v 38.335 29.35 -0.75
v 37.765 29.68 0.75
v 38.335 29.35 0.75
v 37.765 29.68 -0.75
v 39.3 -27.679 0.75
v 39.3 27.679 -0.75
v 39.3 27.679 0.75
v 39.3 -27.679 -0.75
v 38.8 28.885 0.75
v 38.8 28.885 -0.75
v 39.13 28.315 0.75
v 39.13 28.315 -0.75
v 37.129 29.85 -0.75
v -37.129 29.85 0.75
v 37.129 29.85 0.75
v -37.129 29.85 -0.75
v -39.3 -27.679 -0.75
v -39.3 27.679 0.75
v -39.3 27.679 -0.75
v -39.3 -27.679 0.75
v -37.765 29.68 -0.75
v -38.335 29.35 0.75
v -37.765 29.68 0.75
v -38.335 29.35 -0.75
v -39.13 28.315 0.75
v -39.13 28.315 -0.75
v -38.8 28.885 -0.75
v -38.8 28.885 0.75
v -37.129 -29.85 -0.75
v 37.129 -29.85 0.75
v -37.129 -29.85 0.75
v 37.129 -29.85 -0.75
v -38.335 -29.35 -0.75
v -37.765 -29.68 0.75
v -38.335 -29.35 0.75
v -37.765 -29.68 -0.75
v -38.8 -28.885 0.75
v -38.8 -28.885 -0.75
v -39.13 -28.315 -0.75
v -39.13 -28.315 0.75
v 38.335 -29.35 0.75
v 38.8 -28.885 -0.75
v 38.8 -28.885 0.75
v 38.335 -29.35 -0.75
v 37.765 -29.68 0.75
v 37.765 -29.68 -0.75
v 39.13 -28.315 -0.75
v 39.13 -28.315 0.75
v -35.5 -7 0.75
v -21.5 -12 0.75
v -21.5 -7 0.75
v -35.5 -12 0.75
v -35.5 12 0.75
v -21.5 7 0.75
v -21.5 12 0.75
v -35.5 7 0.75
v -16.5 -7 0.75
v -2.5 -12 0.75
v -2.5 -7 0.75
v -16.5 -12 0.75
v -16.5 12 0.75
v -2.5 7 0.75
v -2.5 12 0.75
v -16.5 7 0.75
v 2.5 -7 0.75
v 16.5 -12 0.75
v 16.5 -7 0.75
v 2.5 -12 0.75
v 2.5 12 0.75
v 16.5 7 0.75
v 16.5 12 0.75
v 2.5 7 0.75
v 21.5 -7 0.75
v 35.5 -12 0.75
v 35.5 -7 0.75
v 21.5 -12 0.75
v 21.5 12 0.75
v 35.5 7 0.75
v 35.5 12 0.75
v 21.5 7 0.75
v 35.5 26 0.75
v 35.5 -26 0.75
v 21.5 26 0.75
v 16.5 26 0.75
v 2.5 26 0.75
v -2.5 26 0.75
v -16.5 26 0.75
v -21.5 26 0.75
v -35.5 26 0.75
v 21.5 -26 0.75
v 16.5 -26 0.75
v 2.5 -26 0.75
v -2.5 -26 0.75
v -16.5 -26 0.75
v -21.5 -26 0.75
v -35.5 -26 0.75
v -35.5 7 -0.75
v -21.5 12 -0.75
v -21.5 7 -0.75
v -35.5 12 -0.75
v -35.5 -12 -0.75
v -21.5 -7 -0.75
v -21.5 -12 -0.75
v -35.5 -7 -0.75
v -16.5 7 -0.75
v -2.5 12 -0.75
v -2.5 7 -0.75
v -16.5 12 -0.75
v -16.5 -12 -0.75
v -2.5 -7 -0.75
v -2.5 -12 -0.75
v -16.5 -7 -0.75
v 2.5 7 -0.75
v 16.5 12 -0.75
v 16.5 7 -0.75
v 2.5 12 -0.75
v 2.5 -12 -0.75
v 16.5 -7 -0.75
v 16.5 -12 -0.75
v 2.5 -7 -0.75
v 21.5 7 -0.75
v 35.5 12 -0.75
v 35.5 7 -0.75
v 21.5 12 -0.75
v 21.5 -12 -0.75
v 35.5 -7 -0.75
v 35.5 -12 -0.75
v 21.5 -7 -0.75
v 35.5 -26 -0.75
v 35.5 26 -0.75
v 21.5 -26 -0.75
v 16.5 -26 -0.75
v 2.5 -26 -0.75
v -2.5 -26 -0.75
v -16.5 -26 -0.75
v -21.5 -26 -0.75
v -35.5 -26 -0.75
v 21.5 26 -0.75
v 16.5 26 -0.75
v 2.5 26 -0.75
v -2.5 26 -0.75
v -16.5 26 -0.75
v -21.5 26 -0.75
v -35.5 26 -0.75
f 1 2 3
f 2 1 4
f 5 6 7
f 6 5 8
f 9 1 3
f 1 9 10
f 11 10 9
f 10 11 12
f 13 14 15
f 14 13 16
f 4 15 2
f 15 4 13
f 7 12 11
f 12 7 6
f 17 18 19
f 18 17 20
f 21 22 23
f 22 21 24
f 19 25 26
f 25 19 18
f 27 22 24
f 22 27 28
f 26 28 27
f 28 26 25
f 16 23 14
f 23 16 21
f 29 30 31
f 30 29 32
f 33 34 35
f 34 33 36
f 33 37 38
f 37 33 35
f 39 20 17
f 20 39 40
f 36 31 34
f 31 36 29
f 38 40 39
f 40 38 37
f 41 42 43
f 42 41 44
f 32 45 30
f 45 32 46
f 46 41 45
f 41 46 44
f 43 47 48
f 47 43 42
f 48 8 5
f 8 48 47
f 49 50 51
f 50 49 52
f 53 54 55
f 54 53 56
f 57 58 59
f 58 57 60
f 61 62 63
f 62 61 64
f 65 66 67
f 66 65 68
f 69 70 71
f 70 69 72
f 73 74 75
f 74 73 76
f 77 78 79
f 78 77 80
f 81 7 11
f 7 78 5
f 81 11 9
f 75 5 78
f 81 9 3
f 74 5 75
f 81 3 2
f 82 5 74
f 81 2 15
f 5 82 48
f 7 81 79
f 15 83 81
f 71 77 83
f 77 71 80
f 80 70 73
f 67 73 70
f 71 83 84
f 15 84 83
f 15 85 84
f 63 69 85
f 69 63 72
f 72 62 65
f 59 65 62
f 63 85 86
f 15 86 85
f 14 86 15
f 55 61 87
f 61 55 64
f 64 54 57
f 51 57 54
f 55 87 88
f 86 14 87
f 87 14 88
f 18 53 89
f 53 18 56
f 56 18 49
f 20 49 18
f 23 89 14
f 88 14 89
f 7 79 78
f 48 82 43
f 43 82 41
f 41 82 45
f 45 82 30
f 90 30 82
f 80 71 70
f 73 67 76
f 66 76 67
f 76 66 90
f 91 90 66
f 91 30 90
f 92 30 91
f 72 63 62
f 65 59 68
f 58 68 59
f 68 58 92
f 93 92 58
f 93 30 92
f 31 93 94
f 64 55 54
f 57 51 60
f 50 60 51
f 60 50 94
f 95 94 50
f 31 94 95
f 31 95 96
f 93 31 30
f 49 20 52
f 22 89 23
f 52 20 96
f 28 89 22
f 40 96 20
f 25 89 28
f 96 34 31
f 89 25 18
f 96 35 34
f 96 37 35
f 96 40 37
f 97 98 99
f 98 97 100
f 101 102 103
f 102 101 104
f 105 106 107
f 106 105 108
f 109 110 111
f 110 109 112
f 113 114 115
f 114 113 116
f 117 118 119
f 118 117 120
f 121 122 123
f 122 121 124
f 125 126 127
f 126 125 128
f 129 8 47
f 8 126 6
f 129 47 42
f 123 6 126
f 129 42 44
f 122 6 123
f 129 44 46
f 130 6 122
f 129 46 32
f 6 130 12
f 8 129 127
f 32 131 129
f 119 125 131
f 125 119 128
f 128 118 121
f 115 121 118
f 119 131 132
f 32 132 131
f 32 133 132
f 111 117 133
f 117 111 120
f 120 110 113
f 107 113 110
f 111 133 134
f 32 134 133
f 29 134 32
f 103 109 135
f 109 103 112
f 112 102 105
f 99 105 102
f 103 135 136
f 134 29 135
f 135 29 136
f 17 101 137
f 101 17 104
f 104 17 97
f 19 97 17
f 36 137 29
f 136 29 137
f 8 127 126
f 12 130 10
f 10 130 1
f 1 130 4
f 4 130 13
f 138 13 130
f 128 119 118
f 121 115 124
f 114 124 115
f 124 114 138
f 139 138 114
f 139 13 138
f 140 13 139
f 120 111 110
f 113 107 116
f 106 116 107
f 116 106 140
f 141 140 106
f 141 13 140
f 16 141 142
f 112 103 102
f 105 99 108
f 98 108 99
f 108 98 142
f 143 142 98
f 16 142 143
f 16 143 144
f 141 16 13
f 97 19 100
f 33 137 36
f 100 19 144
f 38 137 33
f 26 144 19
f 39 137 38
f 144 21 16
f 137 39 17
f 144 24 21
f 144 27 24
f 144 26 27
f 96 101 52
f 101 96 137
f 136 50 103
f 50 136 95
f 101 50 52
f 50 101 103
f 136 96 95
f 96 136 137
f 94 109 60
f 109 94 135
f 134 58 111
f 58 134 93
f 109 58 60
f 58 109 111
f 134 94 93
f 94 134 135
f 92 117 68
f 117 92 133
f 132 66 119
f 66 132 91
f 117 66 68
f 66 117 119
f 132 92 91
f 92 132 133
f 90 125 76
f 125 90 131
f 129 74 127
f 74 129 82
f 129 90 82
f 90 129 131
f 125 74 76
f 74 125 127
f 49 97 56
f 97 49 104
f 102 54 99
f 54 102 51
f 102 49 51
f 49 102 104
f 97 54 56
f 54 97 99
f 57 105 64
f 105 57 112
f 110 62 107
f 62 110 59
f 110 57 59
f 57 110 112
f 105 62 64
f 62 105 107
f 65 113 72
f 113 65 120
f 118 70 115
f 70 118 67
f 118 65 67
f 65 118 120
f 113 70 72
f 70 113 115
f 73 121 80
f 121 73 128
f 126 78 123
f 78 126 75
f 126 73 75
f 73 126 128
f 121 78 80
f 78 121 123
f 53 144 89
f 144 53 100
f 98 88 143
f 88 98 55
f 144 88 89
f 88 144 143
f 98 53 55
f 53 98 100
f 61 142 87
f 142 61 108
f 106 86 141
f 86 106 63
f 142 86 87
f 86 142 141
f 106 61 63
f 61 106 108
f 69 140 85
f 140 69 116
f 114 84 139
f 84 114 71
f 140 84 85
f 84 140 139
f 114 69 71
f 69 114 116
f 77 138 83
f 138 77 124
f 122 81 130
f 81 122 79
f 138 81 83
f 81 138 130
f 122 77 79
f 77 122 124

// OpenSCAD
include <BOSL/constants.scad>
use <BOSL/metric_screws.scad>
use <BOSL/shapes.scad>
use <BOSL/transforms.scad>
use <BOSL/masks.scad>
use <BOSL/math.scad>

/* [Customizable Switch Plate] */

// Plate size in mm, X and Y, defaults to the size of the Adafruit Macropad RS2040
plate_size = [78.6,59.7];
// Plate thickness in mm
plate_thickness = 1.5;
// Switch size, defaults to 14,14 for MX-compat
switch_size = [14,14];
// Gap between switches in the plate
switch_gap = 5;
// Number of button columns
colunms = 3;
// Number of button rows
rows = 4;

difference()
{
    cuboid(size=flatten([plate_size, [plate_thickness]]), fillet=2.5, edges=EDGES_Z_ALL, $fn=24);
    grid2d(size=[plate_size[0]-20,plate_size[1]-20],
            spacing=switch_size[0]+switch_gap, cols=colunms, rows=rows, stagger=false)
        cuboid(size=flatten([switch_size, [plate_thickness+0.1]]));
}
